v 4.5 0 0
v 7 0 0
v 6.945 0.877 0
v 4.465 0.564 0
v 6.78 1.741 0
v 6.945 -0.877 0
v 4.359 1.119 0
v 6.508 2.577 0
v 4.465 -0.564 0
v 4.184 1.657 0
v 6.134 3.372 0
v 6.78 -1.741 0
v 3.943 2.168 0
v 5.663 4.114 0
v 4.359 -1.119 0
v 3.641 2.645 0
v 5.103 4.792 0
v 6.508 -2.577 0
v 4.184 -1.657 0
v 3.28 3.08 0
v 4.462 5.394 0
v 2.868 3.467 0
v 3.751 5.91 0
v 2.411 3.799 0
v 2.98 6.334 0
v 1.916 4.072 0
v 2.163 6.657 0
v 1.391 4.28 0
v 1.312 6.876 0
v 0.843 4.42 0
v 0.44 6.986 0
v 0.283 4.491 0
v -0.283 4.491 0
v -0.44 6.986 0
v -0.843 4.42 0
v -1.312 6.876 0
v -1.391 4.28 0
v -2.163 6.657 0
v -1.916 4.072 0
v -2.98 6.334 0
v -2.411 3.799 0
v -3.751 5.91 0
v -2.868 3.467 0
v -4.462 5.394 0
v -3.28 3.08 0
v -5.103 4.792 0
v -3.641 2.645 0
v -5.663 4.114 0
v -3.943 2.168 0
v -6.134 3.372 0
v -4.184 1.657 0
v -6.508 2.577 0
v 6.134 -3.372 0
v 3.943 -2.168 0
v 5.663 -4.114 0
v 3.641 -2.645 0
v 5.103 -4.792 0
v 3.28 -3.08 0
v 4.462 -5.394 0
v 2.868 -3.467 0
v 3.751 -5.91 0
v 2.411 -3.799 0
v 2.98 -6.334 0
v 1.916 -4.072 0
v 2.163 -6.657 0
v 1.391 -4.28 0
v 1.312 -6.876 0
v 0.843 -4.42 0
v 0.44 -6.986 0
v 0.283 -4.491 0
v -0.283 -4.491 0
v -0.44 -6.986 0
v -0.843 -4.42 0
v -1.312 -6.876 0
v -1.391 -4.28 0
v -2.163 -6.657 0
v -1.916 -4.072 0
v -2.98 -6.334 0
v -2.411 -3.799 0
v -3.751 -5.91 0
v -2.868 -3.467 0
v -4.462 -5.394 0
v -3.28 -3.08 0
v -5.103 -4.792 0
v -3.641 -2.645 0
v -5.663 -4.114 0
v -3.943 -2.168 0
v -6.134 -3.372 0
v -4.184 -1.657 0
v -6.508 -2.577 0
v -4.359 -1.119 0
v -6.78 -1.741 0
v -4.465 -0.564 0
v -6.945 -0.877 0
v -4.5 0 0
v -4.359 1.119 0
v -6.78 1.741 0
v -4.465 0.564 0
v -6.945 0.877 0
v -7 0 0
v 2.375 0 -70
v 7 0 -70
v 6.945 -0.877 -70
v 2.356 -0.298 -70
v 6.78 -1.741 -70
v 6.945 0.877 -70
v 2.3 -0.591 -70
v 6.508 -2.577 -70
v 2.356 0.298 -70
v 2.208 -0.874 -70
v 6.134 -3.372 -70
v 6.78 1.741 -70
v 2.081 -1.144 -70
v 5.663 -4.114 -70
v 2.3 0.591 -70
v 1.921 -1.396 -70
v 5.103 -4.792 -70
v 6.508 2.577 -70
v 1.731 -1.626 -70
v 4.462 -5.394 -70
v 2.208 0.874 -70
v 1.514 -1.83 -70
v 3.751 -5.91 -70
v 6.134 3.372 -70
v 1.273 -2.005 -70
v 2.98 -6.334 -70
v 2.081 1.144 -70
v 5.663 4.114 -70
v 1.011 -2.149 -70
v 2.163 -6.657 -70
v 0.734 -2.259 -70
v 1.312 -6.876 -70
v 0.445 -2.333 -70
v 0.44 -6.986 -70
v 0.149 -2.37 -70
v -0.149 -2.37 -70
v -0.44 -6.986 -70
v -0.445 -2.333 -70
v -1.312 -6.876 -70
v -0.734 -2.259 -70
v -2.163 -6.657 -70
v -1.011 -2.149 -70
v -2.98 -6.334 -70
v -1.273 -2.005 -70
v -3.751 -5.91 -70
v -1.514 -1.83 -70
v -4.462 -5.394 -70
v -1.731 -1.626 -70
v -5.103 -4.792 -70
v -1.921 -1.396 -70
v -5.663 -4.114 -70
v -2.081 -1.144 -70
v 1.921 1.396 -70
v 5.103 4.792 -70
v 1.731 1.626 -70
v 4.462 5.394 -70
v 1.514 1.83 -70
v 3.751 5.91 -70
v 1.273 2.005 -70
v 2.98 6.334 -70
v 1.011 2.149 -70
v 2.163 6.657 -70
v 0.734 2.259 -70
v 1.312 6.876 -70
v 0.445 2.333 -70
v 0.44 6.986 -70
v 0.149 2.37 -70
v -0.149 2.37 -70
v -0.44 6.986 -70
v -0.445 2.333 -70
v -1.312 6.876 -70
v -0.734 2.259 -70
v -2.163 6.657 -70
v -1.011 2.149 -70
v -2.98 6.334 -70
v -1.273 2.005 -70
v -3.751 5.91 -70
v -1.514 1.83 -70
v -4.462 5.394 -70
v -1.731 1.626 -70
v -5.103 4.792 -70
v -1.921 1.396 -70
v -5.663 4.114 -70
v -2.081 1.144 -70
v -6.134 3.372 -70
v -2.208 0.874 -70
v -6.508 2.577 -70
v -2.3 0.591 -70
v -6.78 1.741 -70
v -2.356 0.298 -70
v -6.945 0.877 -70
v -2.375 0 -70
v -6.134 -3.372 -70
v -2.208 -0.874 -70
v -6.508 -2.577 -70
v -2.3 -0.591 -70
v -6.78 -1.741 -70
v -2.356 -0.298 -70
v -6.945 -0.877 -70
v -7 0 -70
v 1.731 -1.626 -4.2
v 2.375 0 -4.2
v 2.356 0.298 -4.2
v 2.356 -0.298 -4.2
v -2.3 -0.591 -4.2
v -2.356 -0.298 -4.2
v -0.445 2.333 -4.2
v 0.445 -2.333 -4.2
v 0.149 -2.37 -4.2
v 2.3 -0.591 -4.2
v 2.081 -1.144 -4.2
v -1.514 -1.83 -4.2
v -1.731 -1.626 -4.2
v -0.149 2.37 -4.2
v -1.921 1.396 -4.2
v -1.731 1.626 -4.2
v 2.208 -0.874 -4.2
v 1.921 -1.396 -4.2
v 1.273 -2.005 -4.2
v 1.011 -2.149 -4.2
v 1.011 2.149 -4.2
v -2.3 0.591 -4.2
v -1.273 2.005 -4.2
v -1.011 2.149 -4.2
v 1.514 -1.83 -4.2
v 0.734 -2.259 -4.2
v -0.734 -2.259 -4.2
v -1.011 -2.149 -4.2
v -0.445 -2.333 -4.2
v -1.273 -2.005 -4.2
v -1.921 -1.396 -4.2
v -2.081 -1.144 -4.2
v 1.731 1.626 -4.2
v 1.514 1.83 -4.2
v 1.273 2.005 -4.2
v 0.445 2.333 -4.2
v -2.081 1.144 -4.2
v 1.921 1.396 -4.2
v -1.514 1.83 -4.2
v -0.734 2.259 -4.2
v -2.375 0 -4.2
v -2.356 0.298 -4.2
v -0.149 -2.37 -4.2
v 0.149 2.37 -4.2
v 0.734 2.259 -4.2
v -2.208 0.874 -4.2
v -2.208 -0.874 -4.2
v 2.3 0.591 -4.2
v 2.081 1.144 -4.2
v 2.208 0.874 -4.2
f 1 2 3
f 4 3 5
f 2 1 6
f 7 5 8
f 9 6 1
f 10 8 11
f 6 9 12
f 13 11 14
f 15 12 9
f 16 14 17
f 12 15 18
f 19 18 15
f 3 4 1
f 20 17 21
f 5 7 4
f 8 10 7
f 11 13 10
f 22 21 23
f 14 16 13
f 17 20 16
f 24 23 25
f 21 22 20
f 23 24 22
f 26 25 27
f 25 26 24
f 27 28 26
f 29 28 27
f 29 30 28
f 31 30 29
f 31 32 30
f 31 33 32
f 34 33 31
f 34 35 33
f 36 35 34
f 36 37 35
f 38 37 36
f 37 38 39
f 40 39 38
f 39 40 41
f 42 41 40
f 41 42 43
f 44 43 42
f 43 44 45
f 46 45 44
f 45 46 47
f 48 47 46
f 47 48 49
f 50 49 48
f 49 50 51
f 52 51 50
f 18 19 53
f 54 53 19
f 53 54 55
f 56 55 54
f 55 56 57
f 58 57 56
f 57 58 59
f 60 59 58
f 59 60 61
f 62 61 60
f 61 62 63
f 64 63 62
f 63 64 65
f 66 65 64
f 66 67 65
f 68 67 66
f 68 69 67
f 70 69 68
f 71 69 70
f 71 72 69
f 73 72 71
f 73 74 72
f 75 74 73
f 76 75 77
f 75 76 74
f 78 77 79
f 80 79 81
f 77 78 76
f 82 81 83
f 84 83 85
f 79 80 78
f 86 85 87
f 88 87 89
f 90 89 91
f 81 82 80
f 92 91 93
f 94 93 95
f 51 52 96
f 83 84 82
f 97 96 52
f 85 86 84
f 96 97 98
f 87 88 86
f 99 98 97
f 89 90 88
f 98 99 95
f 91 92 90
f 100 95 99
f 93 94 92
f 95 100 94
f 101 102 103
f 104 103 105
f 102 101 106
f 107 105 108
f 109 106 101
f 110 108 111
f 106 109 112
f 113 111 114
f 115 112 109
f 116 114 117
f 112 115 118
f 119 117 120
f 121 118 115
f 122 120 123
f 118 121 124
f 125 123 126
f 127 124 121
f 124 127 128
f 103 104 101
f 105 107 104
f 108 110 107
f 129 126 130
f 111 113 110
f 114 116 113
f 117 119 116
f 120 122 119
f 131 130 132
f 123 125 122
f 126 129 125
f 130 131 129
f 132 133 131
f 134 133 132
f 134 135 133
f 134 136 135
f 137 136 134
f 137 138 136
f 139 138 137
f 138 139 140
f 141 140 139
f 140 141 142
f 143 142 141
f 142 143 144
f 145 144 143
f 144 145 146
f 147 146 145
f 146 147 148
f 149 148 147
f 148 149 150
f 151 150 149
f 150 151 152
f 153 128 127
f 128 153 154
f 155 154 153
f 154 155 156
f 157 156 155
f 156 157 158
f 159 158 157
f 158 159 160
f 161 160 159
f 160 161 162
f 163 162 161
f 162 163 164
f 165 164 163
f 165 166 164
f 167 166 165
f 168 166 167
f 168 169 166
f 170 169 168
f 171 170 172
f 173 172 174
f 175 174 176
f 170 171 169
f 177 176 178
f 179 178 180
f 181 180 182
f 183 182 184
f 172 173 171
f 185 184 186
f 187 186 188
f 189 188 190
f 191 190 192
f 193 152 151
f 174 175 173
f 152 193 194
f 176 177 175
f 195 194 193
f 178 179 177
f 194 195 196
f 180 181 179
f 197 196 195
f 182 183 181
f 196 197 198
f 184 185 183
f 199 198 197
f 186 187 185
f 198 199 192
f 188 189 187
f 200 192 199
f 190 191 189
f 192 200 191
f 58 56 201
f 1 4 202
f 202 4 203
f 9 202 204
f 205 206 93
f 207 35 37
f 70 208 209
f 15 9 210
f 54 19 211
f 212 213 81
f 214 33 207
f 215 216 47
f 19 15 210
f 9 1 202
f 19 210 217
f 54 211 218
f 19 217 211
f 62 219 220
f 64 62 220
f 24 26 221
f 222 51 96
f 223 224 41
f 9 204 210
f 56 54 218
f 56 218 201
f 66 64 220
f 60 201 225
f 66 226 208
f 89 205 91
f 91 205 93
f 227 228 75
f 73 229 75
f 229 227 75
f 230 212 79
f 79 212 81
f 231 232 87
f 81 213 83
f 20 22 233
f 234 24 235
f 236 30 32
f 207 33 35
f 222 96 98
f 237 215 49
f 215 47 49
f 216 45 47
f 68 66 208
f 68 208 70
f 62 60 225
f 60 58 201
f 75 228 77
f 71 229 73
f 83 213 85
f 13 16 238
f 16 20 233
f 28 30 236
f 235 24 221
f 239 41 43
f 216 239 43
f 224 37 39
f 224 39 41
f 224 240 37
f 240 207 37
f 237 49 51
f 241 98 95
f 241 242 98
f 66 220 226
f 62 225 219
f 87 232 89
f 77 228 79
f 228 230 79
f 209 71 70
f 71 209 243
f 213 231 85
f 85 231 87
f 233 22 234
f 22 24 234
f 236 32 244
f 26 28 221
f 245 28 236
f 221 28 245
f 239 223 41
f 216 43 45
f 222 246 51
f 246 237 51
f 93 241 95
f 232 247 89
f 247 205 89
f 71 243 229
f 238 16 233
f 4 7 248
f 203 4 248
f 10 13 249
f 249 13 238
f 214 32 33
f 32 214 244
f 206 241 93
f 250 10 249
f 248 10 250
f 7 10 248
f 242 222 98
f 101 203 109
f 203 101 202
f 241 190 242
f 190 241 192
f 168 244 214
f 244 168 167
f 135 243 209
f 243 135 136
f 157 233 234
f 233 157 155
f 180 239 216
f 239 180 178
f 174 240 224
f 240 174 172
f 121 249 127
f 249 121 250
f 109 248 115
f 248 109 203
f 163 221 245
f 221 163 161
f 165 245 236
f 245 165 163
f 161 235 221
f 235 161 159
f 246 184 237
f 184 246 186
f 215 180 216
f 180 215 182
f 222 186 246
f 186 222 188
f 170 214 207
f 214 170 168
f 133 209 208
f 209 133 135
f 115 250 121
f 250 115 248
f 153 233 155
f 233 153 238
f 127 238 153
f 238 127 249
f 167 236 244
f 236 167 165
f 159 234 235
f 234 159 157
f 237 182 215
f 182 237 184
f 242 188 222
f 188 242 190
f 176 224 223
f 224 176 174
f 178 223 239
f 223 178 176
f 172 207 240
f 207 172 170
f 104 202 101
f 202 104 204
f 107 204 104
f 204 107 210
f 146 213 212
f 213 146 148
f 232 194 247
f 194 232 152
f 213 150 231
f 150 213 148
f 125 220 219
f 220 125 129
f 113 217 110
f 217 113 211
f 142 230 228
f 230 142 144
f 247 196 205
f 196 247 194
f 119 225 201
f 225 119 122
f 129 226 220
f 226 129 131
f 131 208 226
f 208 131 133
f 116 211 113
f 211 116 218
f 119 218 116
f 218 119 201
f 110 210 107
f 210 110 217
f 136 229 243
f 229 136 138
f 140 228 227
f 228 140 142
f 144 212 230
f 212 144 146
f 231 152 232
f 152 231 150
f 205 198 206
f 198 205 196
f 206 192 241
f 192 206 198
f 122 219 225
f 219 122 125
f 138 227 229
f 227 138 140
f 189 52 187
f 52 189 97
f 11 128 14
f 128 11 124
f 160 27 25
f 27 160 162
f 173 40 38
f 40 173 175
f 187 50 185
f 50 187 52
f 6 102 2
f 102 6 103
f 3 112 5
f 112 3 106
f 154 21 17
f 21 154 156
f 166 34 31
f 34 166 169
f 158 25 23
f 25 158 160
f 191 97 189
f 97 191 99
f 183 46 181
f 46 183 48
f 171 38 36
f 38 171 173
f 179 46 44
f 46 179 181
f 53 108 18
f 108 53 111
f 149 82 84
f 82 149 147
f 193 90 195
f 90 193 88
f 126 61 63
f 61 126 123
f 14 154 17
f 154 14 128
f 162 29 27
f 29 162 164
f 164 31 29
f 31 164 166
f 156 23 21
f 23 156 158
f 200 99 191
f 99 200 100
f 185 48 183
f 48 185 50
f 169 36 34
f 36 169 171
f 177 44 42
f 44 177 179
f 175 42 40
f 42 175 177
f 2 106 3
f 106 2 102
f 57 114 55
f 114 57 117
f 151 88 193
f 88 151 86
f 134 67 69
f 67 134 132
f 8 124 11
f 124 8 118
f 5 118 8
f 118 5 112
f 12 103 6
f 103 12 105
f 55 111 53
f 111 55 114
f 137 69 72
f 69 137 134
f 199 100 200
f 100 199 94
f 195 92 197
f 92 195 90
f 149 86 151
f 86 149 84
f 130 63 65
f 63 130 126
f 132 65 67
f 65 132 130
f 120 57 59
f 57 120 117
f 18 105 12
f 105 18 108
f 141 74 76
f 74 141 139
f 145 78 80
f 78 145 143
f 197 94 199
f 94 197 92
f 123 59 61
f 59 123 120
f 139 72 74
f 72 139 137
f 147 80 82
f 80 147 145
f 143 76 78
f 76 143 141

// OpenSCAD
$fn = 50;


difference() {
	union() {
		translate(v = [0, 0, -70.0000000000]) {
			cylinder(h = 70, r = 7.0000000000);
		}
	}
	union() {
		translate(v = [0, 0, 0]) {
			rotate(a = [0, 0, 0]) {
				difference() {
					union() {
						#translate(v = [0, 0, -70.0000000000]) {
							cylinder(h = 70, r = 2.2500000000);
						}
						#translate(v = [0, 0, -4.2000000000]) {
							cylinder(h = 4.2000000000, r1 = 2.3750000000, r2 = 4.5000000000);
						}
						#translate(v = [0, 0, -70.0000000000]) {
							cylinder(h = 70, r = 2.3750000000);
						}
						#translate(v = [0, 0, -70.0000000000]) {
							cylinder(h = 70, r = 2.2500000000);
						}
					}
					union();
				}
			}
		}
	}
}
